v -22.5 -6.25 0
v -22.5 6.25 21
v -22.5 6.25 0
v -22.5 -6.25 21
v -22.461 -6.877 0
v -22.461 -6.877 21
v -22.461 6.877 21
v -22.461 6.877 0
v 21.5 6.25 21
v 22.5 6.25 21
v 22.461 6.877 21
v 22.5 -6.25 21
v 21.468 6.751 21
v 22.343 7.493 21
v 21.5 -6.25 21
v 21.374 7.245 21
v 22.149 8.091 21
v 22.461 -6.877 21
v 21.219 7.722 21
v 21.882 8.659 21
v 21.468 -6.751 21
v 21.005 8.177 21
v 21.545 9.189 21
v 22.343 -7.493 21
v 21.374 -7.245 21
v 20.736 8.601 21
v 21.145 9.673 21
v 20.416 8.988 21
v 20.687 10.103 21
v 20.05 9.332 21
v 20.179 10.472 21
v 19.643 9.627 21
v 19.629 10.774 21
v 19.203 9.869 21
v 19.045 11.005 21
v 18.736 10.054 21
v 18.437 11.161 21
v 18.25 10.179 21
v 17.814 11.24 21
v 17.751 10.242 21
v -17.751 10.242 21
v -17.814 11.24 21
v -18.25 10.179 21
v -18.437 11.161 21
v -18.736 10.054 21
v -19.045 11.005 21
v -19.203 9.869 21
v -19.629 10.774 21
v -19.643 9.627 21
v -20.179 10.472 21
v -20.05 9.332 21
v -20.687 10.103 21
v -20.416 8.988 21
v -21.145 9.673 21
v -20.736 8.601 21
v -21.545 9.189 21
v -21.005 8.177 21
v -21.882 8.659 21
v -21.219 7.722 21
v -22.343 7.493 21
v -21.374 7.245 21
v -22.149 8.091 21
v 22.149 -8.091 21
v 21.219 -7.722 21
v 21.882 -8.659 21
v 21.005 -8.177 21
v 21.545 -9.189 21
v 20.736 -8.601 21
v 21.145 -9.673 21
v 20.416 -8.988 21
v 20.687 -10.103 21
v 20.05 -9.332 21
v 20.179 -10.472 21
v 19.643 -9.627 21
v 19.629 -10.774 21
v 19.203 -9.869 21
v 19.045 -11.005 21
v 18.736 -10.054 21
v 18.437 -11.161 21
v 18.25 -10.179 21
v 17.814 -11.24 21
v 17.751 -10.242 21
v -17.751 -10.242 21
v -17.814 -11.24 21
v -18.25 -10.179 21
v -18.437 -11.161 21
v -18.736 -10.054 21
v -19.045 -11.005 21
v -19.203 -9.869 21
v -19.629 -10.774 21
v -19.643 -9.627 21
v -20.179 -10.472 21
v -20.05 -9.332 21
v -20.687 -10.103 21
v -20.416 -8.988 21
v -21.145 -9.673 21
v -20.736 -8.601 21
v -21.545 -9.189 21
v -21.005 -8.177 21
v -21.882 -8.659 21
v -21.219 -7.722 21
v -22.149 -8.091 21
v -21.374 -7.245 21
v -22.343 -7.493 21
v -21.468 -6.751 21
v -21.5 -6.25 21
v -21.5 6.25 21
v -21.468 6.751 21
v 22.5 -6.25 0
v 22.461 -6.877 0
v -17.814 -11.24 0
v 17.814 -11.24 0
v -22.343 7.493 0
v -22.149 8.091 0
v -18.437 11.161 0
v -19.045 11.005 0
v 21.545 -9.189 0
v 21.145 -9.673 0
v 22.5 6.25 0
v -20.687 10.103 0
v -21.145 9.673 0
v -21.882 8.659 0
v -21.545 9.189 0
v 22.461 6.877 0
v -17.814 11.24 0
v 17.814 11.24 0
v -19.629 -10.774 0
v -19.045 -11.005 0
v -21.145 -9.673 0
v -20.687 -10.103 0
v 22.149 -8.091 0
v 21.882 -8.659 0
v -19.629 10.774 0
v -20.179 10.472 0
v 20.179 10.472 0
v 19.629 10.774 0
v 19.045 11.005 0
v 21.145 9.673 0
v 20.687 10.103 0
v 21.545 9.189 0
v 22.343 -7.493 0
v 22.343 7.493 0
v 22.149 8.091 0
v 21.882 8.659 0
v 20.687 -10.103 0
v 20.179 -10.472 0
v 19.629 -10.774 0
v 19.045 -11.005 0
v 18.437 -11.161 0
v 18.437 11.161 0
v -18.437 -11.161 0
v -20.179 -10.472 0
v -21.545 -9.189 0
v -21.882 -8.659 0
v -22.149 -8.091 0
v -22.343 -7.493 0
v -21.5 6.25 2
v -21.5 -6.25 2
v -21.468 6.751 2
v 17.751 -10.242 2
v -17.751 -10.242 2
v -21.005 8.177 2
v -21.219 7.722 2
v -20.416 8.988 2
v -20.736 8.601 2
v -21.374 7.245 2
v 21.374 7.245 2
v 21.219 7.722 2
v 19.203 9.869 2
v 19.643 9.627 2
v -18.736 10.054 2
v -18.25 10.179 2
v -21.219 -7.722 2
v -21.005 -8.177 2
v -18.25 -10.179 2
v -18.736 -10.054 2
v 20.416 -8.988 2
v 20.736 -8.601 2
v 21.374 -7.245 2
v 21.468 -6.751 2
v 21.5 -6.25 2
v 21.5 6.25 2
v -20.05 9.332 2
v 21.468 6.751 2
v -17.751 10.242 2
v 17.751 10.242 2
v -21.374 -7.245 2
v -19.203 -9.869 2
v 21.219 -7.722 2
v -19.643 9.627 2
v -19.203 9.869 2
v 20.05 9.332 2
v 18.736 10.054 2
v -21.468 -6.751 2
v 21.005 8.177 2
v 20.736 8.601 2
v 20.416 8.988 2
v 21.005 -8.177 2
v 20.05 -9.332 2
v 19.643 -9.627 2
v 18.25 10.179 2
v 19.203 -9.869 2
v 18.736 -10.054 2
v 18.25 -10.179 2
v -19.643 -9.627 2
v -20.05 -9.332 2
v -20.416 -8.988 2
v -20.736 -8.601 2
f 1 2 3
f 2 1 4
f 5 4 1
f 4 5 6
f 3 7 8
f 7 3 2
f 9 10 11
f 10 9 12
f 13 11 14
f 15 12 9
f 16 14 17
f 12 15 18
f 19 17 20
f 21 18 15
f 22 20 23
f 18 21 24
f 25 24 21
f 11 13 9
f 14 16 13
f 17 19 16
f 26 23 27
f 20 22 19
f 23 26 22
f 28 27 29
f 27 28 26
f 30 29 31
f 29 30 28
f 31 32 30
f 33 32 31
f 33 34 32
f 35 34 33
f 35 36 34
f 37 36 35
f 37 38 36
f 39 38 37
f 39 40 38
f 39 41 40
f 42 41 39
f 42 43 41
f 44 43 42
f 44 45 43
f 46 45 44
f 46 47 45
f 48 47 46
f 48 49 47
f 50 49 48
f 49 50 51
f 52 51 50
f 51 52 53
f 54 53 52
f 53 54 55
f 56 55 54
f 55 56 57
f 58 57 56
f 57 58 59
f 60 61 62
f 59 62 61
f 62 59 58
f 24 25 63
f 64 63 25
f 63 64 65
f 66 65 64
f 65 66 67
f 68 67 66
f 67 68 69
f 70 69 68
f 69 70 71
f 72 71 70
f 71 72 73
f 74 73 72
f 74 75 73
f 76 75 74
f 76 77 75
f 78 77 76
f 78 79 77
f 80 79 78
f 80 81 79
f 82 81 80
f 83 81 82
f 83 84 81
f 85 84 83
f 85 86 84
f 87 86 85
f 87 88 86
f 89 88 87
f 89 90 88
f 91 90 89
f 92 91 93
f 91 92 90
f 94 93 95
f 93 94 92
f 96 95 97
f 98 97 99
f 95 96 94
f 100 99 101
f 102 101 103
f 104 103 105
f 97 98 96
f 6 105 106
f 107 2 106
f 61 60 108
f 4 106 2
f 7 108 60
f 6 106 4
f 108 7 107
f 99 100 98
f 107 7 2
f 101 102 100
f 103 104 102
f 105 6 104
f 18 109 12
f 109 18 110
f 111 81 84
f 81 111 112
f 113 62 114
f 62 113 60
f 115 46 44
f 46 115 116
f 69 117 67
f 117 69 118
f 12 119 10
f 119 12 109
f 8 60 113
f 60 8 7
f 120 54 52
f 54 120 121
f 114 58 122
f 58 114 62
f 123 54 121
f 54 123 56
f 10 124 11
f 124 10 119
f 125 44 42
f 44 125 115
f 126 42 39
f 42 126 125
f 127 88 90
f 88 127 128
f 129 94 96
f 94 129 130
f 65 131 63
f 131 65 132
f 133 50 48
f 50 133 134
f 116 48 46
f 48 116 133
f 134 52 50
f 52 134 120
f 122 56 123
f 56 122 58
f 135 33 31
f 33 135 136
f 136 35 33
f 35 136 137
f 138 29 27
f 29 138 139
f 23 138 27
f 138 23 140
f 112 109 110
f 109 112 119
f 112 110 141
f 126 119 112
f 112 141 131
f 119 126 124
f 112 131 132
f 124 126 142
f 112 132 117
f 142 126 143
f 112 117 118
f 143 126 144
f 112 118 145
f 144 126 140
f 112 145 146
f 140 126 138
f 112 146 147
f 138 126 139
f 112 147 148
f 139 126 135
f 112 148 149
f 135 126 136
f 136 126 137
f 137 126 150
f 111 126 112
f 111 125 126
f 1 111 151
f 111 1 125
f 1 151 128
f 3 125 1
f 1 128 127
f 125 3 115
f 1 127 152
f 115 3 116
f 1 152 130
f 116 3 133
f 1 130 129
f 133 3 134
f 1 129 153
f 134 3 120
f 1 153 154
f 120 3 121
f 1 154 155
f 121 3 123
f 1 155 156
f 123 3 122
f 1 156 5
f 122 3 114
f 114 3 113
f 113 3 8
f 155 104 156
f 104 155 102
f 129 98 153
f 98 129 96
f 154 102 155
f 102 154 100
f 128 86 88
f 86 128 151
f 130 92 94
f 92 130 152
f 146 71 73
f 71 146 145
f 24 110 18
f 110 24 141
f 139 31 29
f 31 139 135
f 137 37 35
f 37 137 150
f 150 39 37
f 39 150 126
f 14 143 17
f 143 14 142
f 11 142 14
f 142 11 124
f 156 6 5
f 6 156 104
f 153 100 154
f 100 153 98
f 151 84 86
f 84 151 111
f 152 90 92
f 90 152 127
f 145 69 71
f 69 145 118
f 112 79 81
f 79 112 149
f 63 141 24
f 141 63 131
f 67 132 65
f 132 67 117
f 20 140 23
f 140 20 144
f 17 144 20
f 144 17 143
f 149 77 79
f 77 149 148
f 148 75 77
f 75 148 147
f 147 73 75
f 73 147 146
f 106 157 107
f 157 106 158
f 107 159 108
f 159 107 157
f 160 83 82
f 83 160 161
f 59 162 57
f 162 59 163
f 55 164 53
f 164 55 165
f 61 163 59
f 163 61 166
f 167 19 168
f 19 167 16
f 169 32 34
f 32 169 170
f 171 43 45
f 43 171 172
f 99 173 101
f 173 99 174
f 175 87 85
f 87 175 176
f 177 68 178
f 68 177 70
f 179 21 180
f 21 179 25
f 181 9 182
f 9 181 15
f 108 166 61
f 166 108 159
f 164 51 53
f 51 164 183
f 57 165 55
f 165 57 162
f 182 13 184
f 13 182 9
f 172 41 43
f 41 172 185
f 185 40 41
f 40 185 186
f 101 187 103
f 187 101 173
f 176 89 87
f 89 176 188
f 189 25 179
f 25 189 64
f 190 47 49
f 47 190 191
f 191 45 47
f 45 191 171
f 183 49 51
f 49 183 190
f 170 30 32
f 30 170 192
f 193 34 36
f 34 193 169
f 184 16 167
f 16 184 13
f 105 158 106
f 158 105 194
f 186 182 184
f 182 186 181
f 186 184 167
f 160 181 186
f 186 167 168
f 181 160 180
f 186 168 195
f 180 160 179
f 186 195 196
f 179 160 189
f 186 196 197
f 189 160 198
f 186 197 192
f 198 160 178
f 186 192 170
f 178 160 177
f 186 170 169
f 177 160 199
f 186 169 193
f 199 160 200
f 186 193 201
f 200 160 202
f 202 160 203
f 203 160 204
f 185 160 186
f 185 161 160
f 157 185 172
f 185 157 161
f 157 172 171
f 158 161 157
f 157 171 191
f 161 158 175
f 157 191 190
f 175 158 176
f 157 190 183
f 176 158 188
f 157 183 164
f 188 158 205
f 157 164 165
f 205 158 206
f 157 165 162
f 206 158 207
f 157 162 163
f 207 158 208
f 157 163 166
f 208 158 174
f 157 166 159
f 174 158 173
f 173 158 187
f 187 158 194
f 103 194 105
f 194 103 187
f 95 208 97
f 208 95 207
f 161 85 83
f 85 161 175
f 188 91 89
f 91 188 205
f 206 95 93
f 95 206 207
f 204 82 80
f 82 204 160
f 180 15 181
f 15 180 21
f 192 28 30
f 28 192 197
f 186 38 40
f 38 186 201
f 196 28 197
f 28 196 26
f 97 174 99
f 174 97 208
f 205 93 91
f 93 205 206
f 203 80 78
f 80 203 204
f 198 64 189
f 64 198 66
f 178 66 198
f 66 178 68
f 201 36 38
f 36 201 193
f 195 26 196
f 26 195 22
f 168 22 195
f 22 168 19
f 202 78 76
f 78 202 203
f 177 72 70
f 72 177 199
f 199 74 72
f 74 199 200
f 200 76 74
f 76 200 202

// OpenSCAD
$fn = 50;


difference() {
	union() {
		hull() {
			translate(v = [-17.5000000000, 6.2500000000, 0]) {
				cylinder(h = 21, r = 5);
			}
			translate(v = [17.5000000000, 6.2500000000, 0]) {
				cylinder(h = 21, r = 5);
			}
			translate(v = [-17.5000000000, -6.2500000000, 0]) {
				cylinder(h = 21, r = 5);
			}
			translate(v = [17.5000000000, -6.2500000000, 0]) {
				cylinder(h = 21, r = 5);
			}
		}
	}
	union() {
		translate(v = [0, 0, 2]) {
			hull() {
				translate(v = [-17.5000000000, 6.2500000000, 0]) {
					cylinder(h = 19, r = 4);
				}
				translate(v = [17.5000000000, 6.2500000000, 0]) {
					cylinder(h = 19, r = 4);
				}
				translate(v = [-17.5000000000, -6.2500000000, 0]) {
					cylinder(h = 19, r = 4);
				}
				translate(v = [17.5000000000, -6.2500000000, 0]) {
					cylinder(h = 19, r = 4);
				}
			}
		}
	}
}
